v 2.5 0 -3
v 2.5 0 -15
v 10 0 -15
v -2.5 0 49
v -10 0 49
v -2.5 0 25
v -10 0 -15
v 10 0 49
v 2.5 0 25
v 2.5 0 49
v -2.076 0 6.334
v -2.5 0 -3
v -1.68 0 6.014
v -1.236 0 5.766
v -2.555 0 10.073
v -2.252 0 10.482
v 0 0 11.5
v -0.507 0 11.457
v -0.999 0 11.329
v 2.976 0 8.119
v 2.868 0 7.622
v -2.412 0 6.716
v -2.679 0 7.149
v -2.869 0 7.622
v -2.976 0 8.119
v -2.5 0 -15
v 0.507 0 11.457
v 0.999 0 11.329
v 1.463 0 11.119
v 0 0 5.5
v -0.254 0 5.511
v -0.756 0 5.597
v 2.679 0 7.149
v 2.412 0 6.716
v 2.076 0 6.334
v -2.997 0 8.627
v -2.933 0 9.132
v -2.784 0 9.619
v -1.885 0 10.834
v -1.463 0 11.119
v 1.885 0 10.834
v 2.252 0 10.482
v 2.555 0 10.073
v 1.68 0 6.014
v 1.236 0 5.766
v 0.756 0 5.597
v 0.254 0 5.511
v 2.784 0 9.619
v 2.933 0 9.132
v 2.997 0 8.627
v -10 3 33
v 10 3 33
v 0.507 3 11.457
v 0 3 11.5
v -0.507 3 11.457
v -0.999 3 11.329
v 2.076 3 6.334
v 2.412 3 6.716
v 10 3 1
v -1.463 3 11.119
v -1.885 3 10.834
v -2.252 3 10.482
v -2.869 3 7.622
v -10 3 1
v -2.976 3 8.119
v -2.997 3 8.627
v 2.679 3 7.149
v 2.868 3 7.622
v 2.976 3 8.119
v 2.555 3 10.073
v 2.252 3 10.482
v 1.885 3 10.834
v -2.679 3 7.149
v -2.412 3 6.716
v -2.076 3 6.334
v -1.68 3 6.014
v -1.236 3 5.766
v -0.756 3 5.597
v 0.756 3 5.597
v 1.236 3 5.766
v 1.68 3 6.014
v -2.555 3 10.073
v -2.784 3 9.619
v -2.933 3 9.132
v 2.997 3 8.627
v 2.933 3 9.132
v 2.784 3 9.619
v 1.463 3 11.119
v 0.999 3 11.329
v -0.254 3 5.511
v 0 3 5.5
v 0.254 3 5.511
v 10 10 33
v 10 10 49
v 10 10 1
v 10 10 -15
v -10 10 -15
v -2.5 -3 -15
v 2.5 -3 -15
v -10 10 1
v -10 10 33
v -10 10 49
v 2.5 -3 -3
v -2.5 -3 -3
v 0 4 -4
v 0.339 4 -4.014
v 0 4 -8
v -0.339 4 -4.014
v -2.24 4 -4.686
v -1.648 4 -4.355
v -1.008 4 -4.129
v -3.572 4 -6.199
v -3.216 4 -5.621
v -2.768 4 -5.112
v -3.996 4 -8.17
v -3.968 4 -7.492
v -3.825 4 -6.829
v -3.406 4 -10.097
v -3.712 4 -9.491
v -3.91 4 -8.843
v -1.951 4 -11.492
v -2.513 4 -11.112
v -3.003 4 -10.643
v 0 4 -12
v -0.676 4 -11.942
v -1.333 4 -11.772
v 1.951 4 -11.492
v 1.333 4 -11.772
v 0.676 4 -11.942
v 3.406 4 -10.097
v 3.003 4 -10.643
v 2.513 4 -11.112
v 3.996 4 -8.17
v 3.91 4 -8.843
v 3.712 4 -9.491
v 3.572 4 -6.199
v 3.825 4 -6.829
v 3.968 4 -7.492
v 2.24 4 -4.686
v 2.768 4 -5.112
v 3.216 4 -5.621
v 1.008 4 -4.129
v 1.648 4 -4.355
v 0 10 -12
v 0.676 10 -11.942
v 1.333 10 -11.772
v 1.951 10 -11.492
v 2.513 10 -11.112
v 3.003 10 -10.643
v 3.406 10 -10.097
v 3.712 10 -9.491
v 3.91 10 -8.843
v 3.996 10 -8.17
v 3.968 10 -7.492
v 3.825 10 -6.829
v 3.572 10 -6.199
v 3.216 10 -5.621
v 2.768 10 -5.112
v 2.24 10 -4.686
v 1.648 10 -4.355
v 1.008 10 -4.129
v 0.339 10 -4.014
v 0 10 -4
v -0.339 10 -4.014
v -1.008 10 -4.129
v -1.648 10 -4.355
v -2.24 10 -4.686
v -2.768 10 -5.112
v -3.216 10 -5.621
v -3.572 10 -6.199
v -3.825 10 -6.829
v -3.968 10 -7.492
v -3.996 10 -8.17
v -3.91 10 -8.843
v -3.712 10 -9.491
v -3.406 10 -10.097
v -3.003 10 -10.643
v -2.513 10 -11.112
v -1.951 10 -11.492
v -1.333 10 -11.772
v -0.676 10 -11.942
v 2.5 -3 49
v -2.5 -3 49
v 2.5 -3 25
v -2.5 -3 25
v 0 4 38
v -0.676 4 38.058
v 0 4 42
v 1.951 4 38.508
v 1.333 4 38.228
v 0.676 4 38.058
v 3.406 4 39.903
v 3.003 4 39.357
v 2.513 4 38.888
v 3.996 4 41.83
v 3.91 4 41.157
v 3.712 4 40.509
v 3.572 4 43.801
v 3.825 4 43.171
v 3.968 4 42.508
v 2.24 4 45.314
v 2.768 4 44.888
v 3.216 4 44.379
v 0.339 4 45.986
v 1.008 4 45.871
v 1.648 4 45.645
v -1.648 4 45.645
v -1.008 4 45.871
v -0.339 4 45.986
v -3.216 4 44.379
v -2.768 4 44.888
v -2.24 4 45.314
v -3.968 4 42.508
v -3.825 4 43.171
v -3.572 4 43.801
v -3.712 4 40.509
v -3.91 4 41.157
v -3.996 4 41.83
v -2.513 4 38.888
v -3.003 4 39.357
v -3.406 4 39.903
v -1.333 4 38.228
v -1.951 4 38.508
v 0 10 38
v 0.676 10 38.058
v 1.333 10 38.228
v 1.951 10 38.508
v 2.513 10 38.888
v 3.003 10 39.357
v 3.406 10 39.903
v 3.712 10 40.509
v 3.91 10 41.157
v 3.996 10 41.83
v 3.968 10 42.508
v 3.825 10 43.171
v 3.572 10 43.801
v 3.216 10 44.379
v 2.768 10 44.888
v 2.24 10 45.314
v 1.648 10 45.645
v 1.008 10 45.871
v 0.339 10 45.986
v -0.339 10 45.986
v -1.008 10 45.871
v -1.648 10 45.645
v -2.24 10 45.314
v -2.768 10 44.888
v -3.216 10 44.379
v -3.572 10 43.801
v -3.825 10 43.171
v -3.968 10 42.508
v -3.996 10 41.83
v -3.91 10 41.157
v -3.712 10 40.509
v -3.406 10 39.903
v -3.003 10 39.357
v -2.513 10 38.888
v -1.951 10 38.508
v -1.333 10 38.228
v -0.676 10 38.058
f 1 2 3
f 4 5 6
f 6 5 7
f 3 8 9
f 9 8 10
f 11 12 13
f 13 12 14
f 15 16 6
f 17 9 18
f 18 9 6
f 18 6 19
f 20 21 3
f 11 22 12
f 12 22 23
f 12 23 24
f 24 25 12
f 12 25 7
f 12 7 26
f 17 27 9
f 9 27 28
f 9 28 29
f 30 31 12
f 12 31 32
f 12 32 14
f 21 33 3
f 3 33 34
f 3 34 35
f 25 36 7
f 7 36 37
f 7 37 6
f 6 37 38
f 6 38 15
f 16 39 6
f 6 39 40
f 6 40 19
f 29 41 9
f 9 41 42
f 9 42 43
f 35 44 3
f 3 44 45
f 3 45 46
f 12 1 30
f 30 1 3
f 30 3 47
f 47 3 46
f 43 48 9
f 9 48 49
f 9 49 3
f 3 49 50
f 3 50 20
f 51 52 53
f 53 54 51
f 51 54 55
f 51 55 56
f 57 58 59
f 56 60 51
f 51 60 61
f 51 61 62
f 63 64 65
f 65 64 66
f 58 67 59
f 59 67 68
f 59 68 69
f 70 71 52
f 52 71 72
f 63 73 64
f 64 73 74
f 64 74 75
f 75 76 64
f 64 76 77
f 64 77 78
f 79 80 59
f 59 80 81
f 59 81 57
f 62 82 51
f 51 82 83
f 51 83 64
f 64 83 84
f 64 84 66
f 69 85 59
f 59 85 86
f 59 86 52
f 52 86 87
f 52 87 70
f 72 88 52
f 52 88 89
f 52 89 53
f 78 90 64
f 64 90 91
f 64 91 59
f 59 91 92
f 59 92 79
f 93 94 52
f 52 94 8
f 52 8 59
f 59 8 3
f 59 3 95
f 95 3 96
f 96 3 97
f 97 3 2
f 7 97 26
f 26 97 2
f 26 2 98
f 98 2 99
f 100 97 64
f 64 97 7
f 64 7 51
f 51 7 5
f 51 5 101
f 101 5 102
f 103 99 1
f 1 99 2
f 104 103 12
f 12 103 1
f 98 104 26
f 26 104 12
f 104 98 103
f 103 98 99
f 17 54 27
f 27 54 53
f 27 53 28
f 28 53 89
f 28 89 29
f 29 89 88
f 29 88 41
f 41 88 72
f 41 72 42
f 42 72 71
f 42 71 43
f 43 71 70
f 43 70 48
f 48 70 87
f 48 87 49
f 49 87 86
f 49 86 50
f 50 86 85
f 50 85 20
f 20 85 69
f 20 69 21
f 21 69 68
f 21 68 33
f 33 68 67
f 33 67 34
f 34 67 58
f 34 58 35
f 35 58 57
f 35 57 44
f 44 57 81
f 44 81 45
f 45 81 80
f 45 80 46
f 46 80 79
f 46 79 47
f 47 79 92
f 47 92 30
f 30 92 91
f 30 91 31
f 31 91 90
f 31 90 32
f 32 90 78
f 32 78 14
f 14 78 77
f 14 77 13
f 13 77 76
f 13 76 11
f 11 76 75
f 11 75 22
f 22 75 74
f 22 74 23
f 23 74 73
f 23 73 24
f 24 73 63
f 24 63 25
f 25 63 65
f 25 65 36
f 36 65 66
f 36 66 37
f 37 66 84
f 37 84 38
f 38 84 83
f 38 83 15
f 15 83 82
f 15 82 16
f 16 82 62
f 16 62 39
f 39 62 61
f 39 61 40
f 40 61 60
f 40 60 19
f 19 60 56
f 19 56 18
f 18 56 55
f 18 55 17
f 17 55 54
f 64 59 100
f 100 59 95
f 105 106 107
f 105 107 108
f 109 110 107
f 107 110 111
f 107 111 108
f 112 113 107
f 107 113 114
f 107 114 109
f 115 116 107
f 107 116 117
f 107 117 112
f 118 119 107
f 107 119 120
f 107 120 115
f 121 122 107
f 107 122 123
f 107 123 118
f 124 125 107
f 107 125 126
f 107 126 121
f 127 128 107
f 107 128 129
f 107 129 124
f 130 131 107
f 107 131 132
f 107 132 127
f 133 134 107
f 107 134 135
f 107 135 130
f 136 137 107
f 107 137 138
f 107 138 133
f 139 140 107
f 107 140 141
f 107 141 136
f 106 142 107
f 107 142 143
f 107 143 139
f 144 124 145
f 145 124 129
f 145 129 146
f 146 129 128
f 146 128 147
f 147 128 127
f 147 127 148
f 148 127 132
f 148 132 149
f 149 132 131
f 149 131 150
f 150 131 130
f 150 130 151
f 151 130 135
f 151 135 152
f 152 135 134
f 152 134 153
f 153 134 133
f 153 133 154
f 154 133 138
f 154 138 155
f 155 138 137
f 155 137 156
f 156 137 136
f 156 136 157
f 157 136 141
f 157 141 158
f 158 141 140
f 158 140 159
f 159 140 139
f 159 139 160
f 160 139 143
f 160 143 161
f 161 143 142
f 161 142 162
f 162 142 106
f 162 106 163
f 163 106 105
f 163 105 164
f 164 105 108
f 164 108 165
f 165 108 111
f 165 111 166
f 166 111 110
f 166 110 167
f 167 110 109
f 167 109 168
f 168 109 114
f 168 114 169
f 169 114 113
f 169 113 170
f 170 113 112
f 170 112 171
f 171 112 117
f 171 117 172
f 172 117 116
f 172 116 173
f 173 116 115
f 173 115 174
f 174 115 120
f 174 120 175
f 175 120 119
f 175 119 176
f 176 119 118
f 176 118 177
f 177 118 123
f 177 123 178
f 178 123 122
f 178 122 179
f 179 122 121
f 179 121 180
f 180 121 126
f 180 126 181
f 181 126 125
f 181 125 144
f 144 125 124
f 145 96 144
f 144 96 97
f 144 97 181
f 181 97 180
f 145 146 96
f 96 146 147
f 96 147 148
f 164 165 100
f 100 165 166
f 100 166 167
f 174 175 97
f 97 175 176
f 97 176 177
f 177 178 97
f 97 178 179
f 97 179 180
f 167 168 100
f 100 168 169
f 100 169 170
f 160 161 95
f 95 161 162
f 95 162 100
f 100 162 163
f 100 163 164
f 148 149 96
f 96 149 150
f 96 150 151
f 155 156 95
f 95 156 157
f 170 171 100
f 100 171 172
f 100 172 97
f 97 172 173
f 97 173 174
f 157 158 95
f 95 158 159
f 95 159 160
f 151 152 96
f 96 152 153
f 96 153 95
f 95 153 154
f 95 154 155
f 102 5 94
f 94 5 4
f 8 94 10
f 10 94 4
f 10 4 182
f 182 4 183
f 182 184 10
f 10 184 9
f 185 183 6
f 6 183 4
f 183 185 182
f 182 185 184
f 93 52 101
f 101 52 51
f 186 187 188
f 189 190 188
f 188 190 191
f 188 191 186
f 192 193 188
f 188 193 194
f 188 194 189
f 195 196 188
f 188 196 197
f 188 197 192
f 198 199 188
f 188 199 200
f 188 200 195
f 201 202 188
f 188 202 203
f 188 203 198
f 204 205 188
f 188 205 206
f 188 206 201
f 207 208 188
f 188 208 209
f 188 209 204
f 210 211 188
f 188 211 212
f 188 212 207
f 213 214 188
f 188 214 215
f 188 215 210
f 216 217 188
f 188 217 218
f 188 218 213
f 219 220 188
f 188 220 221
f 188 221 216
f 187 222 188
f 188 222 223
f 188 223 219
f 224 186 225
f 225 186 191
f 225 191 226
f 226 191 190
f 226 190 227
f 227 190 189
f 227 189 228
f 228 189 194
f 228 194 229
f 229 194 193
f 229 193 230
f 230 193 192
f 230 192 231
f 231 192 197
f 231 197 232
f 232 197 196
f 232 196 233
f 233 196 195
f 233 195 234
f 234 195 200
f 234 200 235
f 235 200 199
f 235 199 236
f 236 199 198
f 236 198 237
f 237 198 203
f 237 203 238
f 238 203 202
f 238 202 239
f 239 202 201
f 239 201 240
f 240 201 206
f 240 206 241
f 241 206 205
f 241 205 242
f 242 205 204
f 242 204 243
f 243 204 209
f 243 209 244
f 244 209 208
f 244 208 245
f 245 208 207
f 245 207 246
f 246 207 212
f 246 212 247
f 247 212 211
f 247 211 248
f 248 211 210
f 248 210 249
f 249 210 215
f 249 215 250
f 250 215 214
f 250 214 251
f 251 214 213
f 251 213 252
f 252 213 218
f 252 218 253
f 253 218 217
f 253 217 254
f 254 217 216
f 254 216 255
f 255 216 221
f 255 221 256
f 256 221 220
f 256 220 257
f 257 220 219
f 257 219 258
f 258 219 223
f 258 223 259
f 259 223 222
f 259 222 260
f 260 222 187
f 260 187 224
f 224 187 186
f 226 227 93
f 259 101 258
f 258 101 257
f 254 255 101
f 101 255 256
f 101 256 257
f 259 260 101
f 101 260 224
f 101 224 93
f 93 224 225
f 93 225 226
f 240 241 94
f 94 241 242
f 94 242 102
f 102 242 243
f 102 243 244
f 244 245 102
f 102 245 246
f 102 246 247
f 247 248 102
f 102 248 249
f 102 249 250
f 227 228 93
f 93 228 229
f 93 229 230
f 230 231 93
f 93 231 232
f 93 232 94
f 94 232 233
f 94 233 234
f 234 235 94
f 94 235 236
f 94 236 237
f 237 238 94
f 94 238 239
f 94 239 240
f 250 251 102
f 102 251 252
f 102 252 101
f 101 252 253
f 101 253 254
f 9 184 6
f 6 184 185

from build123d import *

# Parameters (mm, degrees)
SKETCH1_W               = 20
SKETCH1_H               = 30
BOSS_EXTRUDE1_DEPTH     = 3
SKETCH2_W               = 5
SKETCH2_H               = 12
BOSS_EXTRUDE2_DEPTH     = 3
SKETCH3_R               = 7
SKETCH3_R_2             = 4
BOSS_EXTRUDE3_DEPTH     = 7
SKETCH4_R               = 4
BOSS_EXTRUDE4_DEPTH     = 1
CUT_EXTRUDE1_DEPTH      = 20.339079606
CUT_EXTRUDE1_DEPTH_BACK = 20.339079606
SKETCH5_R               = 3
SKETCH6_R               = 7
SKETCH6_R_2             = 4
BOSS_EXTRUDE6_DEPTH     = 7
SKETCH7_W               = 20
SKETCH7_H               = 3
BOSS_EXTRUDE7_DEPTH     = 19
SKETCH8_W               = 5
SKETCH8_H               = 3
BOSS_EXTRUDE8_DEPTH     = 12


with BuildPart() as part:
    # Sketch1 → Boss-Extrude1 (new body)
    with BuildSketch(Plane(origin=(0, 0, 0), x_dir=(1, 0, 0), z_dir=(0, 1, 0))):
        Rectangle(SKETCH1_W, SKETCH1_H)
    boss_extrude1 = extrude(amount=BOSS_EXTRUDE1_DEPTH)

    # Sketch2 → Boss-Extrude2 (add)
    with BuildSketch(Plane.XZ):
        with Locations((0, -9)):
            Rectangle(SKETCH2_W, SKETCH2_H)
    boss_extrude2 = extrude(amount=BOSS_EXTRUDE2_DEPTH)

    # Sketch3 → Boss-Extrude3 (add)
    with BuildSketch(Plane(origin=(0, 3, 0), x_dir=(1, 0, 0), z_dir=(0, 1, 0))):
        with Locations(Location((0, 8, 0), (0, 0, 90))):
            Circle(SKETCH3_R)
        with Locations(Location((0, 8, 0), (0, 0, 270))):
            Circle(SKETCH3_R_2, mode=Mode.SUBTRACT)
    boss_extrude3 = extrude(amount=BOSS_EXTRUDE3_DEPTH)

    # Sketch4 → Boss-Extrude4 (add)
    with BuildSketch(Plane(origin=(0, 3, 0), x_dir=(1, 0, 0), z_dir=(0, 1, 0))):
        with Locations(Location((0, 8, 0), (0, 0, 270))):
            Circle(SKETCH4_R)
    boss_extrude4 = extrude(amount=BOSS_EXTRUDE4_DEPTH)

    # Sketch5 → Cut-Extrude1 (cut, two sides: drawn at the far end of the back side and taken through both)
    with BuildSketch(Plane(origin=(0, 3, 0), x_dir=(1, 0, 0), z_dir=(0, 1, 0)).offset(-CUT_EXTRUDE1_DEPTH_BACK)):
        with Locations(Location((0, -8.5, 0), (0, 0, 90))):
            Circle(SKETCH5_R)
    extrude(amount=CUT_EXTRUDE1_DEPTH + CUT_EXTRUDE1_DEPTH_BACK, mode=Mode.SUBTRACT)

    # Sketch6 → Boss-Extrude6 (add)
    # profile 1 of 2: a face of its own
    with BuildSketch(Plane(origin=(0, 3, 0), x_dir=(1, 0, 0), z_dir=(0, 1, 0))):
        Polygon((0, 15), (-10, 15), (-10, -1), (10, -1), (10, 15), align=None)
        with BuildLine():
            ThreePointArc((7, 8), (-4.949747468, 3.050252532), (0, 15))
            ThreePointArc((0, 15), (4.949747468, 12.949747468), (7, 8))
        make_face(mode=Mode.SUBTRACT)
    # profile 2 of 2: a face of its own
    with BuildSketch(Plane(origin=(0, 3, 0), x_dir=(1, 0, 0), z_dir=(0, 1, 0))):
        with Locations((0, 8)):
            Circle(SKETCH6_R)
        with Locations(Location((0, 8, 0), (0, 0, 270))):
            Circle(SKETCH6_R_2, mode=Mode.SUBTRACT)
    boss_extrude6 = extrude(amount=BOSS_EXTRUDE6_DEPTH)

    # Sketch7 → Boss-Extrude7 (add)
    with BuildSketch(Plane.XY.offset(15)):
        with Locations((0, 1.5)):
            Rectangle(SKETCH7_W, SKETCH7_H)
    extrude(amount=BOSS_EXTRUDE7_DEPTH)

    # Mirror3: Boss-Extrude1, Boss-Extrude2, Boss-Extrude3, Boss-Extrude4, Boss-Extrude6 across plane
    add(boss_extrude1.mirror(Plane.XY.offset(17)))
    add(boss_extrude2.mirror(Plane.XY.offset(17)))
    add(boss_extrude3.mirror(Plane.XY.offset(17)))
    add(boss_extrude4.mirror(Plane.XY.offset(17)))
    add(boss_extrude6.mirror(Plane.XY.offset(17)))

    # Sketch8 → Boss-Extrude8 (add)
    with BuildSketch(Plane(origin=(0, 0, 37), x_dir=(-1, 0, 0), z_dir=(0, 0, -1))):
        with Locations((0, -1.5)):
            Rectangle(SKETCH8_W, SKETCH8_H)
    extrude(amount=BOSS_EXTRUDE8_DEPTH)


solid = part.part
